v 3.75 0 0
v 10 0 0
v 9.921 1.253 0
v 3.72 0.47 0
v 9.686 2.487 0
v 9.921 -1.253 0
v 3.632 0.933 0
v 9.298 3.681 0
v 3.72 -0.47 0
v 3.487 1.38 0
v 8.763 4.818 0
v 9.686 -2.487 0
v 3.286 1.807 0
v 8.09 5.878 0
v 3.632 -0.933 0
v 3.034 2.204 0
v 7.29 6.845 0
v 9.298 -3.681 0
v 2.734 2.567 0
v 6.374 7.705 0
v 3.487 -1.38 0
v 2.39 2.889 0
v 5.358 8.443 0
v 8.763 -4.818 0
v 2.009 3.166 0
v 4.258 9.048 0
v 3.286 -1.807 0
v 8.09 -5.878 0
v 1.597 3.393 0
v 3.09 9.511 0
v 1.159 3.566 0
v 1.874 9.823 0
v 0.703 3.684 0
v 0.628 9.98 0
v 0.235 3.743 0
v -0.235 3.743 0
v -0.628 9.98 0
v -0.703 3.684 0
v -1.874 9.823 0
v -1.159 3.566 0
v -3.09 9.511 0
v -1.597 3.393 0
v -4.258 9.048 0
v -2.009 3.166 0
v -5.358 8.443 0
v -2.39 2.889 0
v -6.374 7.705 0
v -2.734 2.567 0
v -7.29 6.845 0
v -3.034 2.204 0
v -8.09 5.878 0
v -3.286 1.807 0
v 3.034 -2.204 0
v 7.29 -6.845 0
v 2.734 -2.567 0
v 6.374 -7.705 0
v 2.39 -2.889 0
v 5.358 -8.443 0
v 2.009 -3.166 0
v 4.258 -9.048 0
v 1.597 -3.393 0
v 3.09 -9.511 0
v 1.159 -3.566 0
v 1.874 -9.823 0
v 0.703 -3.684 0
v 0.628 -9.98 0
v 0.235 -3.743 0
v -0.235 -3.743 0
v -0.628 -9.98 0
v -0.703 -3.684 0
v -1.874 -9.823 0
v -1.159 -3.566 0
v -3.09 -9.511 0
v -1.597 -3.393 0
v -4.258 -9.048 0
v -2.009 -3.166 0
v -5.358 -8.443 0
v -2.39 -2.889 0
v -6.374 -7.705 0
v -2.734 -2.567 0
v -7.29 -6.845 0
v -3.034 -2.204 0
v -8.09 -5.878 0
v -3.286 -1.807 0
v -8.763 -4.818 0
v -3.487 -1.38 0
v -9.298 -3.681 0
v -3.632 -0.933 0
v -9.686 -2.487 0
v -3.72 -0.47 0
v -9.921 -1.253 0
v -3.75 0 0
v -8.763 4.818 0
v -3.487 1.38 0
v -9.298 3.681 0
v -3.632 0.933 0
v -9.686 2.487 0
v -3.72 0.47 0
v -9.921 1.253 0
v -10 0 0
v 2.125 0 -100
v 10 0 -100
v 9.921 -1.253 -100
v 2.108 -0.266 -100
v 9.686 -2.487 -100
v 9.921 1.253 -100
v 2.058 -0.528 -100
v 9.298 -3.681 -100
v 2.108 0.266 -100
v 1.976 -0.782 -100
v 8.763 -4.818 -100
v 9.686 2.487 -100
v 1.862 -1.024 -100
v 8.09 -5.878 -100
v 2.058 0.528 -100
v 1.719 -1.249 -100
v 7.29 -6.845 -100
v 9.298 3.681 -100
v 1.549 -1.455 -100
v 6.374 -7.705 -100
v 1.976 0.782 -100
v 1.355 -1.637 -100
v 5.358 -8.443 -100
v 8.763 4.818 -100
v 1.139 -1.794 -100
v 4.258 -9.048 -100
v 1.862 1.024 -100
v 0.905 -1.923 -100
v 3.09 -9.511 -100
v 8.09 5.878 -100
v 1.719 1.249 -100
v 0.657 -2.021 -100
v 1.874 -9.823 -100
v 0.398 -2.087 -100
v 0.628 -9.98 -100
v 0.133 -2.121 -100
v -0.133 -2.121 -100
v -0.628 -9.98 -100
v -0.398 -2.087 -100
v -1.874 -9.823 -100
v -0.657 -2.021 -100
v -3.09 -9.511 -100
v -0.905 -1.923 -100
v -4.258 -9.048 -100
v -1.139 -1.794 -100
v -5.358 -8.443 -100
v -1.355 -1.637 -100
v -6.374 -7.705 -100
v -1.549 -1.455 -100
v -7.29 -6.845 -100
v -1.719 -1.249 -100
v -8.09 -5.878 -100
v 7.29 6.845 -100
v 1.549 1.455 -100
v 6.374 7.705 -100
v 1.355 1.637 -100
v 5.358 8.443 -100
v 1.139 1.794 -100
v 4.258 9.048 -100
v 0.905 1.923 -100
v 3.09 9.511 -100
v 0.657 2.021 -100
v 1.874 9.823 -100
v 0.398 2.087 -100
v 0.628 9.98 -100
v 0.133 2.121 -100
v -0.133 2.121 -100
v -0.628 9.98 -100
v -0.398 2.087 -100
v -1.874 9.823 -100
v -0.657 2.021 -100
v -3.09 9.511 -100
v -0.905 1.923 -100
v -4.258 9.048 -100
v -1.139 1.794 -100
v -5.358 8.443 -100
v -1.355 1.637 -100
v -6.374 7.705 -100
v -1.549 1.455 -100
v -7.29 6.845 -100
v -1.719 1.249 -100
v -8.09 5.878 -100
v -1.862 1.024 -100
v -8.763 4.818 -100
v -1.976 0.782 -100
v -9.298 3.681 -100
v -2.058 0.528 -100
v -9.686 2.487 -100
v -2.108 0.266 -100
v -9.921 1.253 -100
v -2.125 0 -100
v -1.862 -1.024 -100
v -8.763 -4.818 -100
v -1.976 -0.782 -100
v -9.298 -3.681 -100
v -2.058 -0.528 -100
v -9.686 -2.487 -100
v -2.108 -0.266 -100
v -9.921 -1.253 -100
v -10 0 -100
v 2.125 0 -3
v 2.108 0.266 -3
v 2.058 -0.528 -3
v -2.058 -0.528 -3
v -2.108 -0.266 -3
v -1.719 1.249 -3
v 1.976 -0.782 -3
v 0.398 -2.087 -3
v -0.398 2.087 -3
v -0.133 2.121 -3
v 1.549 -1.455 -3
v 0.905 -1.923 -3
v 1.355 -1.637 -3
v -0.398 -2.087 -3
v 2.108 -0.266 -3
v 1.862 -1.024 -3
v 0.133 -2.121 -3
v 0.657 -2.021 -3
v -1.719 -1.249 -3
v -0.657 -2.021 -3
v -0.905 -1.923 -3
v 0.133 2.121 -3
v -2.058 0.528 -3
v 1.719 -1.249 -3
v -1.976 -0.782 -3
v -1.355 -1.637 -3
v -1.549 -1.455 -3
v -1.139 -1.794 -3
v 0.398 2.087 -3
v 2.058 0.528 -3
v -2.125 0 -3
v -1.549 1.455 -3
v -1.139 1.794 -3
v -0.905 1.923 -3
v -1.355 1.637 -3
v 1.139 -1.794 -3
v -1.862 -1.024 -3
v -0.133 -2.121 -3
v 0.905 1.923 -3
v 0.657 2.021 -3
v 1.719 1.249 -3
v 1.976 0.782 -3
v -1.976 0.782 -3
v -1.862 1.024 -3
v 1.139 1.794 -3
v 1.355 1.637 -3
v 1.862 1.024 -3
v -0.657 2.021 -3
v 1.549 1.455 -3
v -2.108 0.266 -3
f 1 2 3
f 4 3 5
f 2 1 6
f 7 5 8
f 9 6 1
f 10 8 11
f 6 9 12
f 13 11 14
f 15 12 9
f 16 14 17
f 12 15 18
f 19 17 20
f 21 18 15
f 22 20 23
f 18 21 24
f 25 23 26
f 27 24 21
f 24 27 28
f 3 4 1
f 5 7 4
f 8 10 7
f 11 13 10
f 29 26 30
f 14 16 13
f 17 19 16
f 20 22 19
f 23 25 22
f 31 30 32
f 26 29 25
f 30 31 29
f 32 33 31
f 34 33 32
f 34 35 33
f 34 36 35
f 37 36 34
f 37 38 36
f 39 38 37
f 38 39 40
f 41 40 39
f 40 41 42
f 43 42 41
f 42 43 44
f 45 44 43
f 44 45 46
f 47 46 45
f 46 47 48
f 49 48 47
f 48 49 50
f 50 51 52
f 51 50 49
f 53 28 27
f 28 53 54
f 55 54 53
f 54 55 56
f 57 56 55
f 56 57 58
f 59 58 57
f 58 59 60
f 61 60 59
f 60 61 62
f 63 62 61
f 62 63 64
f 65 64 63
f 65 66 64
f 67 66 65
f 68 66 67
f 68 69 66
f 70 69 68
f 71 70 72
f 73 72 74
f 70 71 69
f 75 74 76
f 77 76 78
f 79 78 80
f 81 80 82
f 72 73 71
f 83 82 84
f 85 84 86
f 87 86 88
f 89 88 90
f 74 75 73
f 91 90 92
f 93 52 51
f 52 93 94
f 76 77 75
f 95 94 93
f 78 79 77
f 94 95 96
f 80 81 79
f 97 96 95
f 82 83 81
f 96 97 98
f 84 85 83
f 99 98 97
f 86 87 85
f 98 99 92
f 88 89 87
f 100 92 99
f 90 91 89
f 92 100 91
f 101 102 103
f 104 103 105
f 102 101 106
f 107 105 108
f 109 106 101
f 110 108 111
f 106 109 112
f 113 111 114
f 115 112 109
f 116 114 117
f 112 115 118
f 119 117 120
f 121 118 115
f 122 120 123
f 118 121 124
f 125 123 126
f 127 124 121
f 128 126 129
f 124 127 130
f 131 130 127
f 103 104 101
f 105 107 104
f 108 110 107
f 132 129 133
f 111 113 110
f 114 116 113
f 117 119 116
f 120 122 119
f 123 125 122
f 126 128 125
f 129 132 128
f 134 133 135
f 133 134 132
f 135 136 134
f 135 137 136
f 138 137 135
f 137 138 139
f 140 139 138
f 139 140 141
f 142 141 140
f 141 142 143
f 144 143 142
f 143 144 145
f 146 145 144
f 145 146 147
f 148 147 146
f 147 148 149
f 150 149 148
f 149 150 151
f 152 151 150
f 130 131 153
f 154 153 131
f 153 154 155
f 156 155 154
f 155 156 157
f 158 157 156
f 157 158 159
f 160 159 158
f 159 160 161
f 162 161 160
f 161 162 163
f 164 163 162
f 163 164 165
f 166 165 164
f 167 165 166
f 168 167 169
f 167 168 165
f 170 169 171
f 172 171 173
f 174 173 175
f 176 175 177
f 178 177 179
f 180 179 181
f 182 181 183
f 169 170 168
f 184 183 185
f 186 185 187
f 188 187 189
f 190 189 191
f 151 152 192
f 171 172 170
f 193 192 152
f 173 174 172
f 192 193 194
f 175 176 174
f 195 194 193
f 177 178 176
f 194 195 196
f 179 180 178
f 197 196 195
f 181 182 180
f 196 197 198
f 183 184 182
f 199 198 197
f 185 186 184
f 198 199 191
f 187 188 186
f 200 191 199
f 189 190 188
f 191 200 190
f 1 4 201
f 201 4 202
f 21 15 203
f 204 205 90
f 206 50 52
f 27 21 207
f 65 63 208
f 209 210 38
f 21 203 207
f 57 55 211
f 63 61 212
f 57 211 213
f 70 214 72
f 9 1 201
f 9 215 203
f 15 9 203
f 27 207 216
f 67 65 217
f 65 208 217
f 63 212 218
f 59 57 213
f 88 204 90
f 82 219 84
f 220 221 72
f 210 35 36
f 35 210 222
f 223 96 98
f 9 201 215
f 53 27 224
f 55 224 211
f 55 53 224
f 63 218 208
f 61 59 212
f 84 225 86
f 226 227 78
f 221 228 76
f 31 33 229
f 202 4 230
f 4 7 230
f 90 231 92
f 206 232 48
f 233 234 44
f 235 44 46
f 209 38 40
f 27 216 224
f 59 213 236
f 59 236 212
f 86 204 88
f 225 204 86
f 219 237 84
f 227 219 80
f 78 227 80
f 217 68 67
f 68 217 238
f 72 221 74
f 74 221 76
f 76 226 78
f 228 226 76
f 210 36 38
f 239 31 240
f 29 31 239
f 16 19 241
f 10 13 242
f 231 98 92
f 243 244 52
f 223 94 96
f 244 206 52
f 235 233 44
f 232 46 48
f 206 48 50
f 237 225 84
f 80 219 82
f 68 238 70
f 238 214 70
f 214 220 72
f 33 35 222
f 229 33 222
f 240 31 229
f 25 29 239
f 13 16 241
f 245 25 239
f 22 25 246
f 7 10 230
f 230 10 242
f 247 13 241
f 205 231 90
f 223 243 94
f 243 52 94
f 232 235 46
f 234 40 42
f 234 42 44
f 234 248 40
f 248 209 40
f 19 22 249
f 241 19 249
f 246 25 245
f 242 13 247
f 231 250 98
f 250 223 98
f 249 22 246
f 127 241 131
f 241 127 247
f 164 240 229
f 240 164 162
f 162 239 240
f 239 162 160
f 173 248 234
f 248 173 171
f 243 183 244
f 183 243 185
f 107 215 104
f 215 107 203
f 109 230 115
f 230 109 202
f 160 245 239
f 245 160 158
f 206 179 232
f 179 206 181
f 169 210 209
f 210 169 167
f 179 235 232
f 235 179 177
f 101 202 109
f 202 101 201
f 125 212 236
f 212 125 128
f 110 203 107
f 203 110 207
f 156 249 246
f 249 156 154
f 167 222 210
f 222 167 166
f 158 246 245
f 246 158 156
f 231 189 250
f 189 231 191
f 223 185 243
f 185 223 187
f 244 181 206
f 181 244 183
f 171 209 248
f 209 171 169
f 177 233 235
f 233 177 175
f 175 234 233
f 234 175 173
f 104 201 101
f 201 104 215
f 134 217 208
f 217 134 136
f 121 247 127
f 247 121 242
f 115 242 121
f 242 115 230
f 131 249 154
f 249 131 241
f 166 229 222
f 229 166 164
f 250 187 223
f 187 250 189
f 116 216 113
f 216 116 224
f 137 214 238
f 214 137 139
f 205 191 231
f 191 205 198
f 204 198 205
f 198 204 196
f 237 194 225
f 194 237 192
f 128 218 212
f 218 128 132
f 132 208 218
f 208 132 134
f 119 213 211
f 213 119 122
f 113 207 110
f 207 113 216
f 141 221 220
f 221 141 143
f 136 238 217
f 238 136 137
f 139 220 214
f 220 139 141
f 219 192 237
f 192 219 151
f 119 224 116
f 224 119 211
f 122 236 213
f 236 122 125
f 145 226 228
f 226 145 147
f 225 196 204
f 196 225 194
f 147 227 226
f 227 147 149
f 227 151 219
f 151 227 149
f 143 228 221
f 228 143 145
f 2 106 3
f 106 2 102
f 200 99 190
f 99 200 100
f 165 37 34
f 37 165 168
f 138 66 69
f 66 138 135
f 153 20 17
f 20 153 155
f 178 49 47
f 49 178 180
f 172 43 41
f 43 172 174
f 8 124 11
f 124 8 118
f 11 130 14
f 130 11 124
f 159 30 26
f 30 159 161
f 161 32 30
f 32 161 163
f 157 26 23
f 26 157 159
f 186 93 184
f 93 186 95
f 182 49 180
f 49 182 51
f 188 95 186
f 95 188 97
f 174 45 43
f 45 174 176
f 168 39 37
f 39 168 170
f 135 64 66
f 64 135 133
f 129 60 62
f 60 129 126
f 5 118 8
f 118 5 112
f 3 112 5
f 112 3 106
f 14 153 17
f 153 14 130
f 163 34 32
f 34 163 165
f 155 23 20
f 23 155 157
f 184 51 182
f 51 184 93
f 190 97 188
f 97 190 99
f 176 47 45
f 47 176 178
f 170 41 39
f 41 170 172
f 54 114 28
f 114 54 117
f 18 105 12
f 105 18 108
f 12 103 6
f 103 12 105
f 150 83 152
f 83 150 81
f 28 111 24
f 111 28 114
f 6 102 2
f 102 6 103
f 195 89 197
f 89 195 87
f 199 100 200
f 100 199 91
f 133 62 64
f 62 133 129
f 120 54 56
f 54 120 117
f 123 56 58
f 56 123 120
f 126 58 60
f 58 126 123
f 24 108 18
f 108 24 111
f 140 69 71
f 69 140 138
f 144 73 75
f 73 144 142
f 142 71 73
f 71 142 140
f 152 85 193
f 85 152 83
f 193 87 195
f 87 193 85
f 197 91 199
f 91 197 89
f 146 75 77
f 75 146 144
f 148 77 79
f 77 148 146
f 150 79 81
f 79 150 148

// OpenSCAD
$fn = 50;


difference() {
	union() {
		translate(v = [0, 0, -100.0000000000]) {
			cylinder(h = 100, r = 10.0000000000);
		}
		cylinder(h = 0, r = 16.0000000000);
	}
	union() {
		translate(v = [0, 0, 0]) {
			rotate(a = [0, 0, 0]) {
				difference() {
					union() {
						#translate(v = [0, 0, -100.0000000000]) {
							cylinder(h = 100, r = 2.0000000000);
						}
						#translate(v = [0, 0, -3]) {
							cylinder(h = 3, r = 10.0000000000, r1 = 2.1250000000, r2 = 3.7500000000);
						}
						#translate(v = [0, 0, -100.0000000000]) {
							cylinder(h = 100, r = 2.1250000000);
						}
						#translate(v = [0, 0, -100.0000000000]) {
							cylinder(h = 100, r = 2.0000000000);
						}
					}
					union();
				}
			}
		}
	}
}
